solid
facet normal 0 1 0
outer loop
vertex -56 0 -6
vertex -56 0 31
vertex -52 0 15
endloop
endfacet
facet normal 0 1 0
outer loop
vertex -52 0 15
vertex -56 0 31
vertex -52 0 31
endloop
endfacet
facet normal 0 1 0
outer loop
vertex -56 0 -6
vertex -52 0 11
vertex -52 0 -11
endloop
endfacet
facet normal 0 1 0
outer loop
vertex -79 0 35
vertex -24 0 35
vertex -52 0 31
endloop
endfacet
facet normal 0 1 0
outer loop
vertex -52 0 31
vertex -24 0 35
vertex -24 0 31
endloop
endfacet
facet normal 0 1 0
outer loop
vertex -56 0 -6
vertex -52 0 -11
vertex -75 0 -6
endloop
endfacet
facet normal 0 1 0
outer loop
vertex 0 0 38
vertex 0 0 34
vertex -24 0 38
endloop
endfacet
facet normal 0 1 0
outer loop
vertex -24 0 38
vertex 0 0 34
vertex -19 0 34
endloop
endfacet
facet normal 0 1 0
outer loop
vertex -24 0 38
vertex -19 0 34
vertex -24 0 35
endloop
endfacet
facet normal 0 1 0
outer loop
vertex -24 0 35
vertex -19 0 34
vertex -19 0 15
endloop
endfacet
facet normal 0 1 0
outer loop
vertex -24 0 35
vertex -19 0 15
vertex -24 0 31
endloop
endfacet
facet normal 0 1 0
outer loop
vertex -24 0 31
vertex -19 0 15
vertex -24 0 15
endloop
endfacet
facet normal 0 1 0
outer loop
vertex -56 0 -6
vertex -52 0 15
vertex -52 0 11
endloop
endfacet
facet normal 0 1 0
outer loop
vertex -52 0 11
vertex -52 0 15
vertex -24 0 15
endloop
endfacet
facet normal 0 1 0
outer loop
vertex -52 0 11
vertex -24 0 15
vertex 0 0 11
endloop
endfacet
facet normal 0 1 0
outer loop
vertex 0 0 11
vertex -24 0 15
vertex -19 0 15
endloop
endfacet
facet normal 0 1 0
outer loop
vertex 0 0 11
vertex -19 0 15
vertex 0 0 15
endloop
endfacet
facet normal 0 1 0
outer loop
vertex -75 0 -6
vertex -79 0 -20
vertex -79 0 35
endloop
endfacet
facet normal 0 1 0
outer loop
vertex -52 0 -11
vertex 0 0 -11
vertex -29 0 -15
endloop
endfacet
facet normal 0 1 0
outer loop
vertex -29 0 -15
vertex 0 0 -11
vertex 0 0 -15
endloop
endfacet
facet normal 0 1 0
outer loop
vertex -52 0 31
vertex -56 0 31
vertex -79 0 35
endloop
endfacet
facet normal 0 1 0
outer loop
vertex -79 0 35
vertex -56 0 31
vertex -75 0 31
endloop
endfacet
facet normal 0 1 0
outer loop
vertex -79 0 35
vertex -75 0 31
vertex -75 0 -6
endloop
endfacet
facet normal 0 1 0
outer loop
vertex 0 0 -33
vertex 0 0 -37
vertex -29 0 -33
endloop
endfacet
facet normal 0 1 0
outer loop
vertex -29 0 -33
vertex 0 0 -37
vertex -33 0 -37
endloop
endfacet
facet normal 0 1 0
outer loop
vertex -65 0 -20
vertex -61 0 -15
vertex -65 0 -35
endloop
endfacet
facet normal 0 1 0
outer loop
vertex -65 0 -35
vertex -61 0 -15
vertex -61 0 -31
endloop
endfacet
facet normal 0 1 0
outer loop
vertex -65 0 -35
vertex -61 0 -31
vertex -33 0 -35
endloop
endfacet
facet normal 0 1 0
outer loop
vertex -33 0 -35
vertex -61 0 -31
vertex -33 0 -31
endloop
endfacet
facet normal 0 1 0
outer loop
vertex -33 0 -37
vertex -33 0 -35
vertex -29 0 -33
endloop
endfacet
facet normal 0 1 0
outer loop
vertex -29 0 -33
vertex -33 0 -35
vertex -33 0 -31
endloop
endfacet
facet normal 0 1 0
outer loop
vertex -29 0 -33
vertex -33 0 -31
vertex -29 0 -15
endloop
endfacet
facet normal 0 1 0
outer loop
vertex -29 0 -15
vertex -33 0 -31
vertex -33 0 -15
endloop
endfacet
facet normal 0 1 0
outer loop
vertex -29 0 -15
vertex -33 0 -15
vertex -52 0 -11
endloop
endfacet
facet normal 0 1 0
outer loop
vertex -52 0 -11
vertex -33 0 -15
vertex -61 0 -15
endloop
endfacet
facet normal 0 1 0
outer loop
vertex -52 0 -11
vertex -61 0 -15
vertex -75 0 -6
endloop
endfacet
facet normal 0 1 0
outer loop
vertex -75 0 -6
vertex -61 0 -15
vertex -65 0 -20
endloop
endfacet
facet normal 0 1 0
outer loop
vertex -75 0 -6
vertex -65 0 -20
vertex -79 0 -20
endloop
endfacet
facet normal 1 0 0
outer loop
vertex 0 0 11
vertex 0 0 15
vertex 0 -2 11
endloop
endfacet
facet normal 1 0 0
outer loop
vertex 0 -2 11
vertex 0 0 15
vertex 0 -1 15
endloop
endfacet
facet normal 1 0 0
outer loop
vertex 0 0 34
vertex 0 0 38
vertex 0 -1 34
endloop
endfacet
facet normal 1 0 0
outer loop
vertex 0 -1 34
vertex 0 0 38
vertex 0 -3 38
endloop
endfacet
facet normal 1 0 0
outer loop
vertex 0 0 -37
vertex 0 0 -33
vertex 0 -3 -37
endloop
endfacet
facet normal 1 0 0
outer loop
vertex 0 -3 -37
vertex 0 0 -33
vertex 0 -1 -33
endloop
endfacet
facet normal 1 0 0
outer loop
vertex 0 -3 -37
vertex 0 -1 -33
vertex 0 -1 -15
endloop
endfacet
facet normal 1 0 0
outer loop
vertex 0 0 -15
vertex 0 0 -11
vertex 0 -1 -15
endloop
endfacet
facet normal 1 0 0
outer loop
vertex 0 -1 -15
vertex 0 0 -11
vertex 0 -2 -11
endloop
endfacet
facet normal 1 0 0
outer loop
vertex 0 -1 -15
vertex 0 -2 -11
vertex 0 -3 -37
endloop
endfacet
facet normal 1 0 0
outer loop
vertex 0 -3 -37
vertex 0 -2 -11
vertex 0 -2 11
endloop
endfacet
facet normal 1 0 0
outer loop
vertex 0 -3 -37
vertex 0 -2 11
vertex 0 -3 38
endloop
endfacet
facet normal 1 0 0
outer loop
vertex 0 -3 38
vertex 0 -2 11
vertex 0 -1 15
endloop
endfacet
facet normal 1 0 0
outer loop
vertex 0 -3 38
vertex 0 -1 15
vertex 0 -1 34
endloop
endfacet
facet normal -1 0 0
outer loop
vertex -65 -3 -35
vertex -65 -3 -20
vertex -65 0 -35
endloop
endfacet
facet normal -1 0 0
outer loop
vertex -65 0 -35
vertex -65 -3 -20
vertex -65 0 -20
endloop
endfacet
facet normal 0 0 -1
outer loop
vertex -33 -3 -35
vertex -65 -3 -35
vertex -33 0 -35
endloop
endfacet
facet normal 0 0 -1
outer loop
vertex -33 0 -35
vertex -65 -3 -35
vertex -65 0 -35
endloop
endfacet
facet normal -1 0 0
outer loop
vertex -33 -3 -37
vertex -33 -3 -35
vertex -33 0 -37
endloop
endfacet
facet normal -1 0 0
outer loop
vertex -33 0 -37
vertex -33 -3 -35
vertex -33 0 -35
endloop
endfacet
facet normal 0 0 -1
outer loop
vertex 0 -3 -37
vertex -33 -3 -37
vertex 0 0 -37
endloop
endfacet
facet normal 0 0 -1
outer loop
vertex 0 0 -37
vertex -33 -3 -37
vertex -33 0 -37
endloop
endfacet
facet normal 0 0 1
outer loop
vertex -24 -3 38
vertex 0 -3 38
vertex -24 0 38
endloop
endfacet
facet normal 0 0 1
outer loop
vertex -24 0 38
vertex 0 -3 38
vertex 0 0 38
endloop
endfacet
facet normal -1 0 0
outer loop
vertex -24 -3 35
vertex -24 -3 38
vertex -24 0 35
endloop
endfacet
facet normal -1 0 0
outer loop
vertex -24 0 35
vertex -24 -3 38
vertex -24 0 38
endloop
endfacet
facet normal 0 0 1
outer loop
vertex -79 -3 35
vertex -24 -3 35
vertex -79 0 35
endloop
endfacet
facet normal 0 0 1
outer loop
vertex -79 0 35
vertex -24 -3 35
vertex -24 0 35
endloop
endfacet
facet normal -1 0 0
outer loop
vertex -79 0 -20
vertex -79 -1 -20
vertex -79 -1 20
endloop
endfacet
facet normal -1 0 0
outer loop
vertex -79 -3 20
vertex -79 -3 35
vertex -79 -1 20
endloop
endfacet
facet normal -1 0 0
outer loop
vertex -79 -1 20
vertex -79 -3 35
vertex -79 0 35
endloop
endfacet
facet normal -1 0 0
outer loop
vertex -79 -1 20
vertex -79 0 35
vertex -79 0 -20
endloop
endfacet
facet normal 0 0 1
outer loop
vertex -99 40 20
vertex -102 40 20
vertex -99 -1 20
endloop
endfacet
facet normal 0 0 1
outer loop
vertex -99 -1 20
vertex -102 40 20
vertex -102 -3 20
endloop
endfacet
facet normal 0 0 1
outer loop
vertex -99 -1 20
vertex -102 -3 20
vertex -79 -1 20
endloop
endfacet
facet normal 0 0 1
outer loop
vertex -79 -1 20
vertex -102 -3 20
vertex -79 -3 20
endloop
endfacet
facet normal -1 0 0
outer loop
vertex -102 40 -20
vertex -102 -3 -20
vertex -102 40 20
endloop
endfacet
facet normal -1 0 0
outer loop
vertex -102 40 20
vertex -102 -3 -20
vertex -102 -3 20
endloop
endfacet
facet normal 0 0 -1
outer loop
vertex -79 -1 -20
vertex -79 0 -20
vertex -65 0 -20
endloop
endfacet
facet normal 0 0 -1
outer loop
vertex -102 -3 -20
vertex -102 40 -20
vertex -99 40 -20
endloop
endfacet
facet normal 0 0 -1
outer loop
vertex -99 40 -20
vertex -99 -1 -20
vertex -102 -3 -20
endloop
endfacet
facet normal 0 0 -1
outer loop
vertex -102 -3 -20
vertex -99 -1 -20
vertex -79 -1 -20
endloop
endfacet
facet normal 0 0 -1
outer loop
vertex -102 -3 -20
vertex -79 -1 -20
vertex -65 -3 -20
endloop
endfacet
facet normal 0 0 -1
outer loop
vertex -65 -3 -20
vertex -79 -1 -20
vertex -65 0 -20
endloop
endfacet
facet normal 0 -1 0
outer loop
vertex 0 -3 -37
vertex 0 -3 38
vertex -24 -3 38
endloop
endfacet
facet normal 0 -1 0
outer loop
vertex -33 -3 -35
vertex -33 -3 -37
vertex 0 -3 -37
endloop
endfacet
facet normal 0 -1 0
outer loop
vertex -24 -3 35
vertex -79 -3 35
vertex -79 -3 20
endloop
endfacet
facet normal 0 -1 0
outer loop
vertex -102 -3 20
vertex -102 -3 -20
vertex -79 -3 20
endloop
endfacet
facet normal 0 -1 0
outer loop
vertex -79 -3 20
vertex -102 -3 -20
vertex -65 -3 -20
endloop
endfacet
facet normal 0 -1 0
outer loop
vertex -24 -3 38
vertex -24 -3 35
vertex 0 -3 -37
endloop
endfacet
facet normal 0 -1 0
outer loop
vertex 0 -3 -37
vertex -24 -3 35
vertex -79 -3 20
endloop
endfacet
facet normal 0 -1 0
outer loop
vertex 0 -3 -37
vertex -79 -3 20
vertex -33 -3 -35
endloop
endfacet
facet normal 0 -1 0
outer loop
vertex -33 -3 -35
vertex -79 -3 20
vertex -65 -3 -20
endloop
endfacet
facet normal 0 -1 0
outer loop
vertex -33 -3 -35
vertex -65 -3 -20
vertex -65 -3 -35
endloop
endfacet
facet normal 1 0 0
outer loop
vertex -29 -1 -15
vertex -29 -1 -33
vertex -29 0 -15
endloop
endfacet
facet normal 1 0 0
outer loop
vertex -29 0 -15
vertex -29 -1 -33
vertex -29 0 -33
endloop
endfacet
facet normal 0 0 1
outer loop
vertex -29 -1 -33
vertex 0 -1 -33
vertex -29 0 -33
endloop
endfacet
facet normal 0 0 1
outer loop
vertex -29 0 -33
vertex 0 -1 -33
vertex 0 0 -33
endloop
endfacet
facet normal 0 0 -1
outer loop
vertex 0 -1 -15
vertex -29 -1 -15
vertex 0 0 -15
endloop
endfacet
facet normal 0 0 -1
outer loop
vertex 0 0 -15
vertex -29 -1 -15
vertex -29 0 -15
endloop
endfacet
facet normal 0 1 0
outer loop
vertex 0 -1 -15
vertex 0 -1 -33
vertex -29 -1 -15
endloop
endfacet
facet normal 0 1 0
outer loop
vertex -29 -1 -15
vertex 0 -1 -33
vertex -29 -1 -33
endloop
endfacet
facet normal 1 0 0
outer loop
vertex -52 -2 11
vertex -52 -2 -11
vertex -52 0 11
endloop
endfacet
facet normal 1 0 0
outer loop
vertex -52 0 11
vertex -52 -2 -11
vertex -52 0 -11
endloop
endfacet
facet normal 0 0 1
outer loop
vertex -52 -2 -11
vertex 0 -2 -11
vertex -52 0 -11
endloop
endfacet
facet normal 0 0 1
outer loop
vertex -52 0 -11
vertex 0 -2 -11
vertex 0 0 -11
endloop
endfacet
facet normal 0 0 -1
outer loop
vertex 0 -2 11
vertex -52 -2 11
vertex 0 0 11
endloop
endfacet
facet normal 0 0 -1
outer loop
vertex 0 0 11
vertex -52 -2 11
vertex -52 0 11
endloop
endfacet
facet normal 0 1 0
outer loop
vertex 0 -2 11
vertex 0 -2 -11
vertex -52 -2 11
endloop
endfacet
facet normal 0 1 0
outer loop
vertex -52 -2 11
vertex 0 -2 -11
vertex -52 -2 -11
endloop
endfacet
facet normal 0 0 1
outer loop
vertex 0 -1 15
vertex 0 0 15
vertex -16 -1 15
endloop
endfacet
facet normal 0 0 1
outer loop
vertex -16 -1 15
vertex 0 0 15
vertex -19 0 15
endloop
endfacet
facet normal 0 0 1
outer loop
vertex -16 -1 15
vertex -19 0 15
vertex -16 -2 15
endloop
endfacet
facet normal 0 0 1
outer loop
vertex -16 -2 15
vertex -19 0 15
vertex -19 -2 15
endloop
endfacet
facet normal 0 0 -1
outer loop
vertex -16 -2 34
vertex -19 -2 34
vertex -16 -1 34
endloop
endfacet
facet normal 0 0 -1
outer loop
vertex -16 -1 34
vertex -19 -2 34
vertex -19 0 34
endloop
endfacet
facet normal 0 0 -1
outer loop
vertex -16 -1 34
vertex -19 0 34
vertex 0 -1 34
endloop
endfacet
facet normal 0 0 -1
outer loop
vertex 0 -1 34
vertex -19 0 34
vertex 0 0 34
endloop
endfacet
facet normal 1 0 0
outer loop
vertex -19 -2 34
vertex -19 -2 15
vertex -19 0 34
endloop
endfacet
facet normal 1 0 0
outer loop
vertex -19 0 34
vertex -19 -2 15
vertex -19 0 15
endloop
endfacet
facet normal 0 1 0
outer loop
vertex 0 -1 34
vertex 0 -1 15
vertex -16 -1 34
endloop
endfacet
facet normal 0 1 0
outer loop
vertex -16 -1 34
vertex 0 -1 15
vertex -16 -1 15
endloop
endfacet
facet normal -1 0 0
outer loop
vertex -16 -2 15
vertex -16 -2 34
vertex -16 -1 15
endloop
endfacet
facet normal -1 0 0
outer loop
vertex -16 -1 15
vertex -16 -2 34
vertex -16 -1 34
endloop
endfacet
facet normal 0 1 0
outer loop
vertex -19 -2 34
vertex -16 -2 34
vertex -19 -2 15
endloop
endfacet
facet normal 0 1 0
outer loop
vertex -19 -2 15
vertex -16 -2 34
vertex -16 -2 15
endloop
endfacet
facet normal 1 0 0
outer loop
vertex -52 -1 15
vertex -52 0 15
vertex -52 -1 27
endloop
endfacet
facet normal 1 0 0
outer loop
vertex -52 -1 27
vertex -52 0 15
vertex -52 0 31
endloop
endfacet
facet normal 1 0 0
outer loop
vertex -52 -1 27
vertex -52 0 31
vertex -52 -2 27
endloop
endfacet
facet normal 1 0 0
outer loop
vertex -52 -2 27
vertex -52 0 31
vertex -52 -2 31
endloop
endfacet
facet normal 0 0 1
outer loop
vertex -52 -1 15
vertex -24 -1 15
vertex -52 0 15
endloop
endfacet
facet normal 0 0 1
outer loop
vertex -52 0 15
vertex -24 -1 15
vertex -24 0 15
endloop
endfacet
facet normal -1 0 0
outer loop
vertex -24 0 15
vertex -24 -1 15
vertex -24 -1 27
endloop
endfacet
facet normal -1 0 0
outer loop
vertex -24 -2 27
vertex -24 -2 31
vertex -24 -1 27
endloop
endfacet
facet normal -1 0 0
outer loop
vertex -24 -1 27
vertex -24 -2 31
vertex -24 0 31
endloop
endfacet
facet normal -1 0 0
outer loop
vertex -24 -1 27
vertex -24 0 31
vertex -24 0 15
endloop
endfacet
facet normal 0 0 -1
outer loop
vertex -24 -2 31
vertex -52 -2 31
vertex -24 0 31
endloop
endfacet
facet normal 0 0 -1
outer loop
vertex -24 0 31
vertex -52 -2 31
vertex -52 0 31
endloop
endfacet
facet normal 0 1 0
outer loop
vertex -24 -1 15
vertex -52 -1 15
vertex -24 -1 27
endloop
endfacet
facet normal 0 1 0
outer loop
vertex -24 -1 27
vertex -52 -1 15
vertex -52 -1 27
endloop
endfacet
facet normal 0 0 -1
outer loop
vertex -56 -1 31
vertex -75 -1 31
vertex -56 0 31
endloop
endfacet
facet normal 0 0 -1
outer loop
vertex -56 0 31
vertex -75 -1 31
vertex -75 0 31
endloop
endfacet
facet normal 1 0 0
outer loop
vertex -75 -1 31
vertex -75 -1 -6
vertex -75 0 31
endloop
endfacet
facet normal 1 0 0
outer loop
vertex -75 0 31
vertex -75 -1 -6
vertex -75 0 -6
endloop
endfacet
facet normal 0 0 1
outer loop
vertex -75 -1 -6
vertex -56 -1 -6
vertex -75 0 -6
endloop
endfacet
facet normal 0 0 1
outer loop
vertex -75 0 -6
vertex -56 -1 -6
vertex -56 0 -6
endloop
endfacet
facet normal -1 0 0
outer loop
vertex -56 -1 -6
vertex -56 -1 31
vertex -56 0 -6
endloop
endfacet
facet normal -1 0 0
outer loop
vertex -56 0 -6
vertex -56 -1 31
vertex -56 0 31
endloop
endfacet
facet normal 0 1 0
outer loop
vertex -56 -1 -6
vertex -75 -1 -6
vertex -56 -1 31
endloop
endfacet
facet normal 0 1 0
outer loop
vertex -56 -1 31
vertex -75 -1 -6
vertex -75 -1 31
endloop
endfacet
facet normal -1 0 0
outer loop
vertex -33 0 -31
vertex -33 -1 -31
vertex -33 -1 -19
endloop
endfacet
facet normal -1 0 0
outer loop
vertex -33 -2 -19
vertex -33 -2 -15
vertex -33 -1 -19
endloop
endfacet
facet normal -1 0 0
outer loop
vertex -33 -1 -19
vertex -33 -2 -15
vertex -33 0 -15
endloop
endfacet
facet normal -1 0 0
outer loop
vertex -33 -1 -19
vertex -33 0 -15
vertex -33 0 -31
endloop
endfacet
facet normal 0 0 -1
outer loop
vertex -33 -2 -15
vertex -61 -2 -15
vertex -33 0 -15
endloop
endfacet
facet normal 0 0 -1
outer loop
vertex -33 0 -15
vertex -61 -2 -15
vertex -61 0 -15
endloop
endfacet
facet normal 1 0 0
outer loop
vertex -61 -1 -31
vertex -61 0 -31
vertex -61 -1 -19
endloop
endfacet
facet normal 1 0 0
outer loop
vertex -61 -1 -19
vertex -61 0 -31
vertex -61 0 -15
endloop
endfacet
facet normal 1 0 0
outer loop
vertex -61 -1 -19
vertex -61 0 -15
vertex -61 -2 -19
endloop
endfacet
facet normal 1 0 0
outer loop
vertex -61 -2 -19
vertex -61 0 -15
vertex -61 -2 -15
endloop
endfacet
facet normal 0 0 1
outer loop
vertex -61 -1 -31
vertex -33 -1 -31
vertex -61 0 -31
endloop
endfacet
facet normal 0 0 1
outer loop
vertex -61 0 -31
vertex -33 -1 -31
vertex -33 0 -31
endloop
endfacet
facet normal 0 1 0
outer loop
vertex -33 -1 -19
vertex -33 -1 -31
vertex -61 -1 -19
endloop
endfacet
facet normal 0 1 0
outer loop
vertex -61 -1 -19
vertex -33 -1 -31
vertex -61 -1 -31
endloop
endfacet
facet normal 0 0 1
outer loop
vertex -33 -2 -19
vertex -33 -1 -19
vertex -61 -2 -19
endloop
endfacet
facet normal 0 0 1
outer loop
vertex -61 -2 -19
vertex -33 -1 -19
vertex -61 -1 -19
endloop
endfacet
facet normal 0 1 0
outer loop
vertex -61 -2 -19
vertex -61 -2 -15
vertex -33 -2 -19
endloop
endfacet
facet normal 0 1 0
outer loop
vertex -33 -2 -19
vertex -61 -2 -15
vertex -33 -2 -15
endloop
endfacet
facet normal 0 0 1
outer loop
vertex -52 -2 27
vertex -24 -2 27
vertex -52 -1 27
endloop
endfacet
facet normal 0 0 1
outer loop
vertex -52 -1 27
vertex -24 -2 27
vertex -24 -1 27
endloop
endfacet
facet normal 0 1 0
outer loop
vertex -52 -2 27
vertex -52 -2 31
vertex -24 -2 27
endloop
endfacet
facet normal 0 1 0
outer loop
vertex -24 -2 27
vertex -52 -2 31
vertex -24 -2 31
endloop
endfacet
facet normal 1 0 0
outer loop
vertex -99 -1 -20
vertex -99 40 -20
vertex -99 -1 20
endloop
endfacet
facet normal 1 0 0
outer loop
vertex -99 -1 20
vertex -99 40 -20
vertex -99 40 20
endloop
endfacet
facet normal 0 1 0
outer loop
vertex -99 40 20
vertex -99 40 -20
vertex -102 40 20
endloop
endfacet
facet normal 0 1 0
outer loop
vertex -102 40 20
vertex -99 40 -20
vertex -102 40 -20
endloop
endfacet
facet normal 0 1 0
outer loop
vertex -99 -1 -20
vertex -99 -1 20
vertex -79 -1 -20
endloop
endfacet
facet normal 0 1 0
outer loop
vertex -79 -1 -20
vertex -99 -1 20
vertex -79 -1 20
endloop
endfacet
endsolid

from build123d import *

# Parameters (mm, degrees)
BOSS_EXTRUDE2_DEPTH = 3
MOD_BAT_W           = 29
MOD_BAT_H           = 18
CUT_MOD_BAT_DEPTH   = 1
PICO_W              = 52
PICO_H              = 22
CUT_PICO_DEPTH      = 2
SD_CARD_W           = 19
SD_CARD_H           = 19
CUT_SD_CARD_DEPTH   = 1
SD_PIN_W            = 3
SD_PIN_H            = 19
CUT_SD_PIN_DEPTH    = 2
ACELEROMETRO1_W     = 28
ACELEROMETRO1_H     = 16
CUT_ACL1_DEPTH      = 1
STEP_UP_W           = 19
STEP_UP_H           = 37
CUT_STEPUP_DEPTH    = 1
ACELEROMETRO2_W     = 28
ACELEROMETRO2_H     = 16
CUT_ACL2_DEPTH      = 1
SKETCH10_W          = 28
SKETCH10_H          = 4
CUT_ACL1_PIN_DEPTH  = 2
SKETCH10_3_W        = 28
SKETCH10_3_H        = 4
CUT_ACL2_PIN_DEPTH  = 2
SKETCH11_W          = 3
SKETCH11_H          = 40
BOSS_EXTRUDE3_DEPTH = 40
SKETCH12_W          = 20
SKETCH12_H          = 40
CUT_EXTRUDE15_DEPTH = 1


with BuildPart() as part:
    # Sketch7 → Boss-Extrude2 (new body)
    with BuildSketch(Plane(origin=(0, 0, 0), x_dir=(1, 0, 0), z_dir=(0, 1, 0))):
        Polygon((-65, 20), (-102, 20), (-102, -20), (-79, -20), (-79, -35), (-24, -35), (-24, -38), (0, -38), (0, 37), (-33, 37), (-33, 35), (-65, 35), align=None)
    extrude(amount=-BOSS_EXTRUDE2_DEPTH)

    # Mod. Bat → Cut-mod Bat (cut)
    with BuildSketch(Plane(origin=(0, 0, 0), x_dir=(1, 0, 0), z_dir=(0, 1, 0))):
        with Locations((-14.5, 24)):
            Rectangle(MOD_BAT_W, MOD_BAT_H)
    extrude(amount=-CUT_MOD_BAT_DEPTH, mode=Mode.SUBTRACT)

    # Pico → Cut-Pico (cut)
    with BuildSketch(Plane(origin=(0, 0, 0), x_dir=(1, 0, 0), z_dir=(0, 1, 0))):
        with Locations((-26, 0)):
            Rectangle(PICO_W, PICO_H)
    extrude(amount=-CUT_PICO_DEPTH, mode=Mode.SUBTRACT)

    # SD Card → Cut-SD Card (cut)
    with BuildSketch(Plane(origin=(0, 0, 0), x_dir=(1, 0, 0), z_dir=(0, 1, 0))):
        with Locations((-9.5, -24.5)):
            Rectangle(SD_CARD_W, SD_CARD_H)
    extrude(amount=-CUT_SD_CARD_DEPTH, mode=Mode.SUBTRACT)

    # SD Pin → Cut-SD Pin (cut)
    with BuildSketch(Plane(origin=(0, 0, 0), x_dir=(1, 0, 0), z_dir=(0, 1, 0))):
        with Locations((-17.5, -24.5)):
            Rectangle(SD_PIN_W, SD_PIN_H)
    extrude(amount=-CUT_SD_PIN_DEPTH, mode=Mode.SUBTRACT)

    # Acelerometro1 → Cut-Acl1 (cut)
    with BuildSketch(Plane(origin=(0, 0, 0), x_dir=(1, 0, 0), z_dir=(0, 1, 0))):
        with Locations((-38, -23)):
            Rectangle(ACELEROMETRO1_W, ACELEROMETRO1_H)
    extrude(amount=-CUT_ACL1_DEPTH, mode=Mode.SUBTRACT)

    # step-up → Cut-StepUp (cut)
    with BuildSketch(Plane(origin=(0, 0, 0), x_dir=(1, 0, 0), z_dir=(0, 1, 0))):
        with Locations((-65.5, -12.5)):
            Rectangle(STEP_UP_W, STEP_UP_H)
    extrude(amount=-CUT_STEPUP_DEPTH, mode=Mode.SUBTRACT)

    # Acelerometro2 → Cut-Acl2 (cut)
    with BuildSketch(Plane(origin=(0, 0, 0), x_dir=(1, 0, 0), z_dir=(0, 1, 0))):
        with Locations((-47, 23)):
            Rectangle(ACELEROMETRO2_W, ACELEROMETRO2_H)
    extrude(amount=-CUT_ACL2_DEPTH, mode=Mode.SUBTRACT)

    # Sketch10 → Cut-Acl1 Pin (cut)
    with BuildSketch(Plane(origin=(0, 0, 0), x_dir=(1, 0, 0), z_dir=(0, 1, 0))):
        with Locations((-47, 17)):
            Rectangle(SKETCH10_W, SKETCH10_H)
    extrude(amount=-CUT_ACL1_PIN_DEPTH, mode=Mode.SUBTRACT)

    # Sketch10<3> → Cut-Acl2 Pin (cut)
    with BuildSketch(Plane(origin=(0, 0, 0), x_dir=(1, 0, 0), z_dir=(0, 1, 0))):
        with Locations((-38, -29)):
            Rectangle(SKETCH10_3_W, SKETCH10_3_H)
    extrude(amount=-CUT_ACL2_PIN_DEPTH, mode=Mode.SUBTRACT)

    # Sketch11 → Boss-Extrude3 (add)
    with BuildSketch(Plane(origin=(0, 0, 0), x_dir=(1, 0, 0), z_dir=(0, 1, 0))):
        with Locations((-100.5, 0)):
            Rectangle(SKETCH11_W, SKETCH11_H)
    extrude(amount=BOSS_EXTRUDE3_DEPTH)

    # Sketch12 → Cut-Extrude15 (cut)
    with BuildSketch(Plane(origin=(0, 0, 0), x_dir=(1, 0, 0), z_dir=(0, 1, 0))):
        with Locations((-89, 0)):
            Rectangle(SKETCH12_W, SKETCH12_H)
    extrude(amount=-CUT_EXTRUDE15_DEPTH, mode=Mode.SUBTRACT)


solid = part.part
